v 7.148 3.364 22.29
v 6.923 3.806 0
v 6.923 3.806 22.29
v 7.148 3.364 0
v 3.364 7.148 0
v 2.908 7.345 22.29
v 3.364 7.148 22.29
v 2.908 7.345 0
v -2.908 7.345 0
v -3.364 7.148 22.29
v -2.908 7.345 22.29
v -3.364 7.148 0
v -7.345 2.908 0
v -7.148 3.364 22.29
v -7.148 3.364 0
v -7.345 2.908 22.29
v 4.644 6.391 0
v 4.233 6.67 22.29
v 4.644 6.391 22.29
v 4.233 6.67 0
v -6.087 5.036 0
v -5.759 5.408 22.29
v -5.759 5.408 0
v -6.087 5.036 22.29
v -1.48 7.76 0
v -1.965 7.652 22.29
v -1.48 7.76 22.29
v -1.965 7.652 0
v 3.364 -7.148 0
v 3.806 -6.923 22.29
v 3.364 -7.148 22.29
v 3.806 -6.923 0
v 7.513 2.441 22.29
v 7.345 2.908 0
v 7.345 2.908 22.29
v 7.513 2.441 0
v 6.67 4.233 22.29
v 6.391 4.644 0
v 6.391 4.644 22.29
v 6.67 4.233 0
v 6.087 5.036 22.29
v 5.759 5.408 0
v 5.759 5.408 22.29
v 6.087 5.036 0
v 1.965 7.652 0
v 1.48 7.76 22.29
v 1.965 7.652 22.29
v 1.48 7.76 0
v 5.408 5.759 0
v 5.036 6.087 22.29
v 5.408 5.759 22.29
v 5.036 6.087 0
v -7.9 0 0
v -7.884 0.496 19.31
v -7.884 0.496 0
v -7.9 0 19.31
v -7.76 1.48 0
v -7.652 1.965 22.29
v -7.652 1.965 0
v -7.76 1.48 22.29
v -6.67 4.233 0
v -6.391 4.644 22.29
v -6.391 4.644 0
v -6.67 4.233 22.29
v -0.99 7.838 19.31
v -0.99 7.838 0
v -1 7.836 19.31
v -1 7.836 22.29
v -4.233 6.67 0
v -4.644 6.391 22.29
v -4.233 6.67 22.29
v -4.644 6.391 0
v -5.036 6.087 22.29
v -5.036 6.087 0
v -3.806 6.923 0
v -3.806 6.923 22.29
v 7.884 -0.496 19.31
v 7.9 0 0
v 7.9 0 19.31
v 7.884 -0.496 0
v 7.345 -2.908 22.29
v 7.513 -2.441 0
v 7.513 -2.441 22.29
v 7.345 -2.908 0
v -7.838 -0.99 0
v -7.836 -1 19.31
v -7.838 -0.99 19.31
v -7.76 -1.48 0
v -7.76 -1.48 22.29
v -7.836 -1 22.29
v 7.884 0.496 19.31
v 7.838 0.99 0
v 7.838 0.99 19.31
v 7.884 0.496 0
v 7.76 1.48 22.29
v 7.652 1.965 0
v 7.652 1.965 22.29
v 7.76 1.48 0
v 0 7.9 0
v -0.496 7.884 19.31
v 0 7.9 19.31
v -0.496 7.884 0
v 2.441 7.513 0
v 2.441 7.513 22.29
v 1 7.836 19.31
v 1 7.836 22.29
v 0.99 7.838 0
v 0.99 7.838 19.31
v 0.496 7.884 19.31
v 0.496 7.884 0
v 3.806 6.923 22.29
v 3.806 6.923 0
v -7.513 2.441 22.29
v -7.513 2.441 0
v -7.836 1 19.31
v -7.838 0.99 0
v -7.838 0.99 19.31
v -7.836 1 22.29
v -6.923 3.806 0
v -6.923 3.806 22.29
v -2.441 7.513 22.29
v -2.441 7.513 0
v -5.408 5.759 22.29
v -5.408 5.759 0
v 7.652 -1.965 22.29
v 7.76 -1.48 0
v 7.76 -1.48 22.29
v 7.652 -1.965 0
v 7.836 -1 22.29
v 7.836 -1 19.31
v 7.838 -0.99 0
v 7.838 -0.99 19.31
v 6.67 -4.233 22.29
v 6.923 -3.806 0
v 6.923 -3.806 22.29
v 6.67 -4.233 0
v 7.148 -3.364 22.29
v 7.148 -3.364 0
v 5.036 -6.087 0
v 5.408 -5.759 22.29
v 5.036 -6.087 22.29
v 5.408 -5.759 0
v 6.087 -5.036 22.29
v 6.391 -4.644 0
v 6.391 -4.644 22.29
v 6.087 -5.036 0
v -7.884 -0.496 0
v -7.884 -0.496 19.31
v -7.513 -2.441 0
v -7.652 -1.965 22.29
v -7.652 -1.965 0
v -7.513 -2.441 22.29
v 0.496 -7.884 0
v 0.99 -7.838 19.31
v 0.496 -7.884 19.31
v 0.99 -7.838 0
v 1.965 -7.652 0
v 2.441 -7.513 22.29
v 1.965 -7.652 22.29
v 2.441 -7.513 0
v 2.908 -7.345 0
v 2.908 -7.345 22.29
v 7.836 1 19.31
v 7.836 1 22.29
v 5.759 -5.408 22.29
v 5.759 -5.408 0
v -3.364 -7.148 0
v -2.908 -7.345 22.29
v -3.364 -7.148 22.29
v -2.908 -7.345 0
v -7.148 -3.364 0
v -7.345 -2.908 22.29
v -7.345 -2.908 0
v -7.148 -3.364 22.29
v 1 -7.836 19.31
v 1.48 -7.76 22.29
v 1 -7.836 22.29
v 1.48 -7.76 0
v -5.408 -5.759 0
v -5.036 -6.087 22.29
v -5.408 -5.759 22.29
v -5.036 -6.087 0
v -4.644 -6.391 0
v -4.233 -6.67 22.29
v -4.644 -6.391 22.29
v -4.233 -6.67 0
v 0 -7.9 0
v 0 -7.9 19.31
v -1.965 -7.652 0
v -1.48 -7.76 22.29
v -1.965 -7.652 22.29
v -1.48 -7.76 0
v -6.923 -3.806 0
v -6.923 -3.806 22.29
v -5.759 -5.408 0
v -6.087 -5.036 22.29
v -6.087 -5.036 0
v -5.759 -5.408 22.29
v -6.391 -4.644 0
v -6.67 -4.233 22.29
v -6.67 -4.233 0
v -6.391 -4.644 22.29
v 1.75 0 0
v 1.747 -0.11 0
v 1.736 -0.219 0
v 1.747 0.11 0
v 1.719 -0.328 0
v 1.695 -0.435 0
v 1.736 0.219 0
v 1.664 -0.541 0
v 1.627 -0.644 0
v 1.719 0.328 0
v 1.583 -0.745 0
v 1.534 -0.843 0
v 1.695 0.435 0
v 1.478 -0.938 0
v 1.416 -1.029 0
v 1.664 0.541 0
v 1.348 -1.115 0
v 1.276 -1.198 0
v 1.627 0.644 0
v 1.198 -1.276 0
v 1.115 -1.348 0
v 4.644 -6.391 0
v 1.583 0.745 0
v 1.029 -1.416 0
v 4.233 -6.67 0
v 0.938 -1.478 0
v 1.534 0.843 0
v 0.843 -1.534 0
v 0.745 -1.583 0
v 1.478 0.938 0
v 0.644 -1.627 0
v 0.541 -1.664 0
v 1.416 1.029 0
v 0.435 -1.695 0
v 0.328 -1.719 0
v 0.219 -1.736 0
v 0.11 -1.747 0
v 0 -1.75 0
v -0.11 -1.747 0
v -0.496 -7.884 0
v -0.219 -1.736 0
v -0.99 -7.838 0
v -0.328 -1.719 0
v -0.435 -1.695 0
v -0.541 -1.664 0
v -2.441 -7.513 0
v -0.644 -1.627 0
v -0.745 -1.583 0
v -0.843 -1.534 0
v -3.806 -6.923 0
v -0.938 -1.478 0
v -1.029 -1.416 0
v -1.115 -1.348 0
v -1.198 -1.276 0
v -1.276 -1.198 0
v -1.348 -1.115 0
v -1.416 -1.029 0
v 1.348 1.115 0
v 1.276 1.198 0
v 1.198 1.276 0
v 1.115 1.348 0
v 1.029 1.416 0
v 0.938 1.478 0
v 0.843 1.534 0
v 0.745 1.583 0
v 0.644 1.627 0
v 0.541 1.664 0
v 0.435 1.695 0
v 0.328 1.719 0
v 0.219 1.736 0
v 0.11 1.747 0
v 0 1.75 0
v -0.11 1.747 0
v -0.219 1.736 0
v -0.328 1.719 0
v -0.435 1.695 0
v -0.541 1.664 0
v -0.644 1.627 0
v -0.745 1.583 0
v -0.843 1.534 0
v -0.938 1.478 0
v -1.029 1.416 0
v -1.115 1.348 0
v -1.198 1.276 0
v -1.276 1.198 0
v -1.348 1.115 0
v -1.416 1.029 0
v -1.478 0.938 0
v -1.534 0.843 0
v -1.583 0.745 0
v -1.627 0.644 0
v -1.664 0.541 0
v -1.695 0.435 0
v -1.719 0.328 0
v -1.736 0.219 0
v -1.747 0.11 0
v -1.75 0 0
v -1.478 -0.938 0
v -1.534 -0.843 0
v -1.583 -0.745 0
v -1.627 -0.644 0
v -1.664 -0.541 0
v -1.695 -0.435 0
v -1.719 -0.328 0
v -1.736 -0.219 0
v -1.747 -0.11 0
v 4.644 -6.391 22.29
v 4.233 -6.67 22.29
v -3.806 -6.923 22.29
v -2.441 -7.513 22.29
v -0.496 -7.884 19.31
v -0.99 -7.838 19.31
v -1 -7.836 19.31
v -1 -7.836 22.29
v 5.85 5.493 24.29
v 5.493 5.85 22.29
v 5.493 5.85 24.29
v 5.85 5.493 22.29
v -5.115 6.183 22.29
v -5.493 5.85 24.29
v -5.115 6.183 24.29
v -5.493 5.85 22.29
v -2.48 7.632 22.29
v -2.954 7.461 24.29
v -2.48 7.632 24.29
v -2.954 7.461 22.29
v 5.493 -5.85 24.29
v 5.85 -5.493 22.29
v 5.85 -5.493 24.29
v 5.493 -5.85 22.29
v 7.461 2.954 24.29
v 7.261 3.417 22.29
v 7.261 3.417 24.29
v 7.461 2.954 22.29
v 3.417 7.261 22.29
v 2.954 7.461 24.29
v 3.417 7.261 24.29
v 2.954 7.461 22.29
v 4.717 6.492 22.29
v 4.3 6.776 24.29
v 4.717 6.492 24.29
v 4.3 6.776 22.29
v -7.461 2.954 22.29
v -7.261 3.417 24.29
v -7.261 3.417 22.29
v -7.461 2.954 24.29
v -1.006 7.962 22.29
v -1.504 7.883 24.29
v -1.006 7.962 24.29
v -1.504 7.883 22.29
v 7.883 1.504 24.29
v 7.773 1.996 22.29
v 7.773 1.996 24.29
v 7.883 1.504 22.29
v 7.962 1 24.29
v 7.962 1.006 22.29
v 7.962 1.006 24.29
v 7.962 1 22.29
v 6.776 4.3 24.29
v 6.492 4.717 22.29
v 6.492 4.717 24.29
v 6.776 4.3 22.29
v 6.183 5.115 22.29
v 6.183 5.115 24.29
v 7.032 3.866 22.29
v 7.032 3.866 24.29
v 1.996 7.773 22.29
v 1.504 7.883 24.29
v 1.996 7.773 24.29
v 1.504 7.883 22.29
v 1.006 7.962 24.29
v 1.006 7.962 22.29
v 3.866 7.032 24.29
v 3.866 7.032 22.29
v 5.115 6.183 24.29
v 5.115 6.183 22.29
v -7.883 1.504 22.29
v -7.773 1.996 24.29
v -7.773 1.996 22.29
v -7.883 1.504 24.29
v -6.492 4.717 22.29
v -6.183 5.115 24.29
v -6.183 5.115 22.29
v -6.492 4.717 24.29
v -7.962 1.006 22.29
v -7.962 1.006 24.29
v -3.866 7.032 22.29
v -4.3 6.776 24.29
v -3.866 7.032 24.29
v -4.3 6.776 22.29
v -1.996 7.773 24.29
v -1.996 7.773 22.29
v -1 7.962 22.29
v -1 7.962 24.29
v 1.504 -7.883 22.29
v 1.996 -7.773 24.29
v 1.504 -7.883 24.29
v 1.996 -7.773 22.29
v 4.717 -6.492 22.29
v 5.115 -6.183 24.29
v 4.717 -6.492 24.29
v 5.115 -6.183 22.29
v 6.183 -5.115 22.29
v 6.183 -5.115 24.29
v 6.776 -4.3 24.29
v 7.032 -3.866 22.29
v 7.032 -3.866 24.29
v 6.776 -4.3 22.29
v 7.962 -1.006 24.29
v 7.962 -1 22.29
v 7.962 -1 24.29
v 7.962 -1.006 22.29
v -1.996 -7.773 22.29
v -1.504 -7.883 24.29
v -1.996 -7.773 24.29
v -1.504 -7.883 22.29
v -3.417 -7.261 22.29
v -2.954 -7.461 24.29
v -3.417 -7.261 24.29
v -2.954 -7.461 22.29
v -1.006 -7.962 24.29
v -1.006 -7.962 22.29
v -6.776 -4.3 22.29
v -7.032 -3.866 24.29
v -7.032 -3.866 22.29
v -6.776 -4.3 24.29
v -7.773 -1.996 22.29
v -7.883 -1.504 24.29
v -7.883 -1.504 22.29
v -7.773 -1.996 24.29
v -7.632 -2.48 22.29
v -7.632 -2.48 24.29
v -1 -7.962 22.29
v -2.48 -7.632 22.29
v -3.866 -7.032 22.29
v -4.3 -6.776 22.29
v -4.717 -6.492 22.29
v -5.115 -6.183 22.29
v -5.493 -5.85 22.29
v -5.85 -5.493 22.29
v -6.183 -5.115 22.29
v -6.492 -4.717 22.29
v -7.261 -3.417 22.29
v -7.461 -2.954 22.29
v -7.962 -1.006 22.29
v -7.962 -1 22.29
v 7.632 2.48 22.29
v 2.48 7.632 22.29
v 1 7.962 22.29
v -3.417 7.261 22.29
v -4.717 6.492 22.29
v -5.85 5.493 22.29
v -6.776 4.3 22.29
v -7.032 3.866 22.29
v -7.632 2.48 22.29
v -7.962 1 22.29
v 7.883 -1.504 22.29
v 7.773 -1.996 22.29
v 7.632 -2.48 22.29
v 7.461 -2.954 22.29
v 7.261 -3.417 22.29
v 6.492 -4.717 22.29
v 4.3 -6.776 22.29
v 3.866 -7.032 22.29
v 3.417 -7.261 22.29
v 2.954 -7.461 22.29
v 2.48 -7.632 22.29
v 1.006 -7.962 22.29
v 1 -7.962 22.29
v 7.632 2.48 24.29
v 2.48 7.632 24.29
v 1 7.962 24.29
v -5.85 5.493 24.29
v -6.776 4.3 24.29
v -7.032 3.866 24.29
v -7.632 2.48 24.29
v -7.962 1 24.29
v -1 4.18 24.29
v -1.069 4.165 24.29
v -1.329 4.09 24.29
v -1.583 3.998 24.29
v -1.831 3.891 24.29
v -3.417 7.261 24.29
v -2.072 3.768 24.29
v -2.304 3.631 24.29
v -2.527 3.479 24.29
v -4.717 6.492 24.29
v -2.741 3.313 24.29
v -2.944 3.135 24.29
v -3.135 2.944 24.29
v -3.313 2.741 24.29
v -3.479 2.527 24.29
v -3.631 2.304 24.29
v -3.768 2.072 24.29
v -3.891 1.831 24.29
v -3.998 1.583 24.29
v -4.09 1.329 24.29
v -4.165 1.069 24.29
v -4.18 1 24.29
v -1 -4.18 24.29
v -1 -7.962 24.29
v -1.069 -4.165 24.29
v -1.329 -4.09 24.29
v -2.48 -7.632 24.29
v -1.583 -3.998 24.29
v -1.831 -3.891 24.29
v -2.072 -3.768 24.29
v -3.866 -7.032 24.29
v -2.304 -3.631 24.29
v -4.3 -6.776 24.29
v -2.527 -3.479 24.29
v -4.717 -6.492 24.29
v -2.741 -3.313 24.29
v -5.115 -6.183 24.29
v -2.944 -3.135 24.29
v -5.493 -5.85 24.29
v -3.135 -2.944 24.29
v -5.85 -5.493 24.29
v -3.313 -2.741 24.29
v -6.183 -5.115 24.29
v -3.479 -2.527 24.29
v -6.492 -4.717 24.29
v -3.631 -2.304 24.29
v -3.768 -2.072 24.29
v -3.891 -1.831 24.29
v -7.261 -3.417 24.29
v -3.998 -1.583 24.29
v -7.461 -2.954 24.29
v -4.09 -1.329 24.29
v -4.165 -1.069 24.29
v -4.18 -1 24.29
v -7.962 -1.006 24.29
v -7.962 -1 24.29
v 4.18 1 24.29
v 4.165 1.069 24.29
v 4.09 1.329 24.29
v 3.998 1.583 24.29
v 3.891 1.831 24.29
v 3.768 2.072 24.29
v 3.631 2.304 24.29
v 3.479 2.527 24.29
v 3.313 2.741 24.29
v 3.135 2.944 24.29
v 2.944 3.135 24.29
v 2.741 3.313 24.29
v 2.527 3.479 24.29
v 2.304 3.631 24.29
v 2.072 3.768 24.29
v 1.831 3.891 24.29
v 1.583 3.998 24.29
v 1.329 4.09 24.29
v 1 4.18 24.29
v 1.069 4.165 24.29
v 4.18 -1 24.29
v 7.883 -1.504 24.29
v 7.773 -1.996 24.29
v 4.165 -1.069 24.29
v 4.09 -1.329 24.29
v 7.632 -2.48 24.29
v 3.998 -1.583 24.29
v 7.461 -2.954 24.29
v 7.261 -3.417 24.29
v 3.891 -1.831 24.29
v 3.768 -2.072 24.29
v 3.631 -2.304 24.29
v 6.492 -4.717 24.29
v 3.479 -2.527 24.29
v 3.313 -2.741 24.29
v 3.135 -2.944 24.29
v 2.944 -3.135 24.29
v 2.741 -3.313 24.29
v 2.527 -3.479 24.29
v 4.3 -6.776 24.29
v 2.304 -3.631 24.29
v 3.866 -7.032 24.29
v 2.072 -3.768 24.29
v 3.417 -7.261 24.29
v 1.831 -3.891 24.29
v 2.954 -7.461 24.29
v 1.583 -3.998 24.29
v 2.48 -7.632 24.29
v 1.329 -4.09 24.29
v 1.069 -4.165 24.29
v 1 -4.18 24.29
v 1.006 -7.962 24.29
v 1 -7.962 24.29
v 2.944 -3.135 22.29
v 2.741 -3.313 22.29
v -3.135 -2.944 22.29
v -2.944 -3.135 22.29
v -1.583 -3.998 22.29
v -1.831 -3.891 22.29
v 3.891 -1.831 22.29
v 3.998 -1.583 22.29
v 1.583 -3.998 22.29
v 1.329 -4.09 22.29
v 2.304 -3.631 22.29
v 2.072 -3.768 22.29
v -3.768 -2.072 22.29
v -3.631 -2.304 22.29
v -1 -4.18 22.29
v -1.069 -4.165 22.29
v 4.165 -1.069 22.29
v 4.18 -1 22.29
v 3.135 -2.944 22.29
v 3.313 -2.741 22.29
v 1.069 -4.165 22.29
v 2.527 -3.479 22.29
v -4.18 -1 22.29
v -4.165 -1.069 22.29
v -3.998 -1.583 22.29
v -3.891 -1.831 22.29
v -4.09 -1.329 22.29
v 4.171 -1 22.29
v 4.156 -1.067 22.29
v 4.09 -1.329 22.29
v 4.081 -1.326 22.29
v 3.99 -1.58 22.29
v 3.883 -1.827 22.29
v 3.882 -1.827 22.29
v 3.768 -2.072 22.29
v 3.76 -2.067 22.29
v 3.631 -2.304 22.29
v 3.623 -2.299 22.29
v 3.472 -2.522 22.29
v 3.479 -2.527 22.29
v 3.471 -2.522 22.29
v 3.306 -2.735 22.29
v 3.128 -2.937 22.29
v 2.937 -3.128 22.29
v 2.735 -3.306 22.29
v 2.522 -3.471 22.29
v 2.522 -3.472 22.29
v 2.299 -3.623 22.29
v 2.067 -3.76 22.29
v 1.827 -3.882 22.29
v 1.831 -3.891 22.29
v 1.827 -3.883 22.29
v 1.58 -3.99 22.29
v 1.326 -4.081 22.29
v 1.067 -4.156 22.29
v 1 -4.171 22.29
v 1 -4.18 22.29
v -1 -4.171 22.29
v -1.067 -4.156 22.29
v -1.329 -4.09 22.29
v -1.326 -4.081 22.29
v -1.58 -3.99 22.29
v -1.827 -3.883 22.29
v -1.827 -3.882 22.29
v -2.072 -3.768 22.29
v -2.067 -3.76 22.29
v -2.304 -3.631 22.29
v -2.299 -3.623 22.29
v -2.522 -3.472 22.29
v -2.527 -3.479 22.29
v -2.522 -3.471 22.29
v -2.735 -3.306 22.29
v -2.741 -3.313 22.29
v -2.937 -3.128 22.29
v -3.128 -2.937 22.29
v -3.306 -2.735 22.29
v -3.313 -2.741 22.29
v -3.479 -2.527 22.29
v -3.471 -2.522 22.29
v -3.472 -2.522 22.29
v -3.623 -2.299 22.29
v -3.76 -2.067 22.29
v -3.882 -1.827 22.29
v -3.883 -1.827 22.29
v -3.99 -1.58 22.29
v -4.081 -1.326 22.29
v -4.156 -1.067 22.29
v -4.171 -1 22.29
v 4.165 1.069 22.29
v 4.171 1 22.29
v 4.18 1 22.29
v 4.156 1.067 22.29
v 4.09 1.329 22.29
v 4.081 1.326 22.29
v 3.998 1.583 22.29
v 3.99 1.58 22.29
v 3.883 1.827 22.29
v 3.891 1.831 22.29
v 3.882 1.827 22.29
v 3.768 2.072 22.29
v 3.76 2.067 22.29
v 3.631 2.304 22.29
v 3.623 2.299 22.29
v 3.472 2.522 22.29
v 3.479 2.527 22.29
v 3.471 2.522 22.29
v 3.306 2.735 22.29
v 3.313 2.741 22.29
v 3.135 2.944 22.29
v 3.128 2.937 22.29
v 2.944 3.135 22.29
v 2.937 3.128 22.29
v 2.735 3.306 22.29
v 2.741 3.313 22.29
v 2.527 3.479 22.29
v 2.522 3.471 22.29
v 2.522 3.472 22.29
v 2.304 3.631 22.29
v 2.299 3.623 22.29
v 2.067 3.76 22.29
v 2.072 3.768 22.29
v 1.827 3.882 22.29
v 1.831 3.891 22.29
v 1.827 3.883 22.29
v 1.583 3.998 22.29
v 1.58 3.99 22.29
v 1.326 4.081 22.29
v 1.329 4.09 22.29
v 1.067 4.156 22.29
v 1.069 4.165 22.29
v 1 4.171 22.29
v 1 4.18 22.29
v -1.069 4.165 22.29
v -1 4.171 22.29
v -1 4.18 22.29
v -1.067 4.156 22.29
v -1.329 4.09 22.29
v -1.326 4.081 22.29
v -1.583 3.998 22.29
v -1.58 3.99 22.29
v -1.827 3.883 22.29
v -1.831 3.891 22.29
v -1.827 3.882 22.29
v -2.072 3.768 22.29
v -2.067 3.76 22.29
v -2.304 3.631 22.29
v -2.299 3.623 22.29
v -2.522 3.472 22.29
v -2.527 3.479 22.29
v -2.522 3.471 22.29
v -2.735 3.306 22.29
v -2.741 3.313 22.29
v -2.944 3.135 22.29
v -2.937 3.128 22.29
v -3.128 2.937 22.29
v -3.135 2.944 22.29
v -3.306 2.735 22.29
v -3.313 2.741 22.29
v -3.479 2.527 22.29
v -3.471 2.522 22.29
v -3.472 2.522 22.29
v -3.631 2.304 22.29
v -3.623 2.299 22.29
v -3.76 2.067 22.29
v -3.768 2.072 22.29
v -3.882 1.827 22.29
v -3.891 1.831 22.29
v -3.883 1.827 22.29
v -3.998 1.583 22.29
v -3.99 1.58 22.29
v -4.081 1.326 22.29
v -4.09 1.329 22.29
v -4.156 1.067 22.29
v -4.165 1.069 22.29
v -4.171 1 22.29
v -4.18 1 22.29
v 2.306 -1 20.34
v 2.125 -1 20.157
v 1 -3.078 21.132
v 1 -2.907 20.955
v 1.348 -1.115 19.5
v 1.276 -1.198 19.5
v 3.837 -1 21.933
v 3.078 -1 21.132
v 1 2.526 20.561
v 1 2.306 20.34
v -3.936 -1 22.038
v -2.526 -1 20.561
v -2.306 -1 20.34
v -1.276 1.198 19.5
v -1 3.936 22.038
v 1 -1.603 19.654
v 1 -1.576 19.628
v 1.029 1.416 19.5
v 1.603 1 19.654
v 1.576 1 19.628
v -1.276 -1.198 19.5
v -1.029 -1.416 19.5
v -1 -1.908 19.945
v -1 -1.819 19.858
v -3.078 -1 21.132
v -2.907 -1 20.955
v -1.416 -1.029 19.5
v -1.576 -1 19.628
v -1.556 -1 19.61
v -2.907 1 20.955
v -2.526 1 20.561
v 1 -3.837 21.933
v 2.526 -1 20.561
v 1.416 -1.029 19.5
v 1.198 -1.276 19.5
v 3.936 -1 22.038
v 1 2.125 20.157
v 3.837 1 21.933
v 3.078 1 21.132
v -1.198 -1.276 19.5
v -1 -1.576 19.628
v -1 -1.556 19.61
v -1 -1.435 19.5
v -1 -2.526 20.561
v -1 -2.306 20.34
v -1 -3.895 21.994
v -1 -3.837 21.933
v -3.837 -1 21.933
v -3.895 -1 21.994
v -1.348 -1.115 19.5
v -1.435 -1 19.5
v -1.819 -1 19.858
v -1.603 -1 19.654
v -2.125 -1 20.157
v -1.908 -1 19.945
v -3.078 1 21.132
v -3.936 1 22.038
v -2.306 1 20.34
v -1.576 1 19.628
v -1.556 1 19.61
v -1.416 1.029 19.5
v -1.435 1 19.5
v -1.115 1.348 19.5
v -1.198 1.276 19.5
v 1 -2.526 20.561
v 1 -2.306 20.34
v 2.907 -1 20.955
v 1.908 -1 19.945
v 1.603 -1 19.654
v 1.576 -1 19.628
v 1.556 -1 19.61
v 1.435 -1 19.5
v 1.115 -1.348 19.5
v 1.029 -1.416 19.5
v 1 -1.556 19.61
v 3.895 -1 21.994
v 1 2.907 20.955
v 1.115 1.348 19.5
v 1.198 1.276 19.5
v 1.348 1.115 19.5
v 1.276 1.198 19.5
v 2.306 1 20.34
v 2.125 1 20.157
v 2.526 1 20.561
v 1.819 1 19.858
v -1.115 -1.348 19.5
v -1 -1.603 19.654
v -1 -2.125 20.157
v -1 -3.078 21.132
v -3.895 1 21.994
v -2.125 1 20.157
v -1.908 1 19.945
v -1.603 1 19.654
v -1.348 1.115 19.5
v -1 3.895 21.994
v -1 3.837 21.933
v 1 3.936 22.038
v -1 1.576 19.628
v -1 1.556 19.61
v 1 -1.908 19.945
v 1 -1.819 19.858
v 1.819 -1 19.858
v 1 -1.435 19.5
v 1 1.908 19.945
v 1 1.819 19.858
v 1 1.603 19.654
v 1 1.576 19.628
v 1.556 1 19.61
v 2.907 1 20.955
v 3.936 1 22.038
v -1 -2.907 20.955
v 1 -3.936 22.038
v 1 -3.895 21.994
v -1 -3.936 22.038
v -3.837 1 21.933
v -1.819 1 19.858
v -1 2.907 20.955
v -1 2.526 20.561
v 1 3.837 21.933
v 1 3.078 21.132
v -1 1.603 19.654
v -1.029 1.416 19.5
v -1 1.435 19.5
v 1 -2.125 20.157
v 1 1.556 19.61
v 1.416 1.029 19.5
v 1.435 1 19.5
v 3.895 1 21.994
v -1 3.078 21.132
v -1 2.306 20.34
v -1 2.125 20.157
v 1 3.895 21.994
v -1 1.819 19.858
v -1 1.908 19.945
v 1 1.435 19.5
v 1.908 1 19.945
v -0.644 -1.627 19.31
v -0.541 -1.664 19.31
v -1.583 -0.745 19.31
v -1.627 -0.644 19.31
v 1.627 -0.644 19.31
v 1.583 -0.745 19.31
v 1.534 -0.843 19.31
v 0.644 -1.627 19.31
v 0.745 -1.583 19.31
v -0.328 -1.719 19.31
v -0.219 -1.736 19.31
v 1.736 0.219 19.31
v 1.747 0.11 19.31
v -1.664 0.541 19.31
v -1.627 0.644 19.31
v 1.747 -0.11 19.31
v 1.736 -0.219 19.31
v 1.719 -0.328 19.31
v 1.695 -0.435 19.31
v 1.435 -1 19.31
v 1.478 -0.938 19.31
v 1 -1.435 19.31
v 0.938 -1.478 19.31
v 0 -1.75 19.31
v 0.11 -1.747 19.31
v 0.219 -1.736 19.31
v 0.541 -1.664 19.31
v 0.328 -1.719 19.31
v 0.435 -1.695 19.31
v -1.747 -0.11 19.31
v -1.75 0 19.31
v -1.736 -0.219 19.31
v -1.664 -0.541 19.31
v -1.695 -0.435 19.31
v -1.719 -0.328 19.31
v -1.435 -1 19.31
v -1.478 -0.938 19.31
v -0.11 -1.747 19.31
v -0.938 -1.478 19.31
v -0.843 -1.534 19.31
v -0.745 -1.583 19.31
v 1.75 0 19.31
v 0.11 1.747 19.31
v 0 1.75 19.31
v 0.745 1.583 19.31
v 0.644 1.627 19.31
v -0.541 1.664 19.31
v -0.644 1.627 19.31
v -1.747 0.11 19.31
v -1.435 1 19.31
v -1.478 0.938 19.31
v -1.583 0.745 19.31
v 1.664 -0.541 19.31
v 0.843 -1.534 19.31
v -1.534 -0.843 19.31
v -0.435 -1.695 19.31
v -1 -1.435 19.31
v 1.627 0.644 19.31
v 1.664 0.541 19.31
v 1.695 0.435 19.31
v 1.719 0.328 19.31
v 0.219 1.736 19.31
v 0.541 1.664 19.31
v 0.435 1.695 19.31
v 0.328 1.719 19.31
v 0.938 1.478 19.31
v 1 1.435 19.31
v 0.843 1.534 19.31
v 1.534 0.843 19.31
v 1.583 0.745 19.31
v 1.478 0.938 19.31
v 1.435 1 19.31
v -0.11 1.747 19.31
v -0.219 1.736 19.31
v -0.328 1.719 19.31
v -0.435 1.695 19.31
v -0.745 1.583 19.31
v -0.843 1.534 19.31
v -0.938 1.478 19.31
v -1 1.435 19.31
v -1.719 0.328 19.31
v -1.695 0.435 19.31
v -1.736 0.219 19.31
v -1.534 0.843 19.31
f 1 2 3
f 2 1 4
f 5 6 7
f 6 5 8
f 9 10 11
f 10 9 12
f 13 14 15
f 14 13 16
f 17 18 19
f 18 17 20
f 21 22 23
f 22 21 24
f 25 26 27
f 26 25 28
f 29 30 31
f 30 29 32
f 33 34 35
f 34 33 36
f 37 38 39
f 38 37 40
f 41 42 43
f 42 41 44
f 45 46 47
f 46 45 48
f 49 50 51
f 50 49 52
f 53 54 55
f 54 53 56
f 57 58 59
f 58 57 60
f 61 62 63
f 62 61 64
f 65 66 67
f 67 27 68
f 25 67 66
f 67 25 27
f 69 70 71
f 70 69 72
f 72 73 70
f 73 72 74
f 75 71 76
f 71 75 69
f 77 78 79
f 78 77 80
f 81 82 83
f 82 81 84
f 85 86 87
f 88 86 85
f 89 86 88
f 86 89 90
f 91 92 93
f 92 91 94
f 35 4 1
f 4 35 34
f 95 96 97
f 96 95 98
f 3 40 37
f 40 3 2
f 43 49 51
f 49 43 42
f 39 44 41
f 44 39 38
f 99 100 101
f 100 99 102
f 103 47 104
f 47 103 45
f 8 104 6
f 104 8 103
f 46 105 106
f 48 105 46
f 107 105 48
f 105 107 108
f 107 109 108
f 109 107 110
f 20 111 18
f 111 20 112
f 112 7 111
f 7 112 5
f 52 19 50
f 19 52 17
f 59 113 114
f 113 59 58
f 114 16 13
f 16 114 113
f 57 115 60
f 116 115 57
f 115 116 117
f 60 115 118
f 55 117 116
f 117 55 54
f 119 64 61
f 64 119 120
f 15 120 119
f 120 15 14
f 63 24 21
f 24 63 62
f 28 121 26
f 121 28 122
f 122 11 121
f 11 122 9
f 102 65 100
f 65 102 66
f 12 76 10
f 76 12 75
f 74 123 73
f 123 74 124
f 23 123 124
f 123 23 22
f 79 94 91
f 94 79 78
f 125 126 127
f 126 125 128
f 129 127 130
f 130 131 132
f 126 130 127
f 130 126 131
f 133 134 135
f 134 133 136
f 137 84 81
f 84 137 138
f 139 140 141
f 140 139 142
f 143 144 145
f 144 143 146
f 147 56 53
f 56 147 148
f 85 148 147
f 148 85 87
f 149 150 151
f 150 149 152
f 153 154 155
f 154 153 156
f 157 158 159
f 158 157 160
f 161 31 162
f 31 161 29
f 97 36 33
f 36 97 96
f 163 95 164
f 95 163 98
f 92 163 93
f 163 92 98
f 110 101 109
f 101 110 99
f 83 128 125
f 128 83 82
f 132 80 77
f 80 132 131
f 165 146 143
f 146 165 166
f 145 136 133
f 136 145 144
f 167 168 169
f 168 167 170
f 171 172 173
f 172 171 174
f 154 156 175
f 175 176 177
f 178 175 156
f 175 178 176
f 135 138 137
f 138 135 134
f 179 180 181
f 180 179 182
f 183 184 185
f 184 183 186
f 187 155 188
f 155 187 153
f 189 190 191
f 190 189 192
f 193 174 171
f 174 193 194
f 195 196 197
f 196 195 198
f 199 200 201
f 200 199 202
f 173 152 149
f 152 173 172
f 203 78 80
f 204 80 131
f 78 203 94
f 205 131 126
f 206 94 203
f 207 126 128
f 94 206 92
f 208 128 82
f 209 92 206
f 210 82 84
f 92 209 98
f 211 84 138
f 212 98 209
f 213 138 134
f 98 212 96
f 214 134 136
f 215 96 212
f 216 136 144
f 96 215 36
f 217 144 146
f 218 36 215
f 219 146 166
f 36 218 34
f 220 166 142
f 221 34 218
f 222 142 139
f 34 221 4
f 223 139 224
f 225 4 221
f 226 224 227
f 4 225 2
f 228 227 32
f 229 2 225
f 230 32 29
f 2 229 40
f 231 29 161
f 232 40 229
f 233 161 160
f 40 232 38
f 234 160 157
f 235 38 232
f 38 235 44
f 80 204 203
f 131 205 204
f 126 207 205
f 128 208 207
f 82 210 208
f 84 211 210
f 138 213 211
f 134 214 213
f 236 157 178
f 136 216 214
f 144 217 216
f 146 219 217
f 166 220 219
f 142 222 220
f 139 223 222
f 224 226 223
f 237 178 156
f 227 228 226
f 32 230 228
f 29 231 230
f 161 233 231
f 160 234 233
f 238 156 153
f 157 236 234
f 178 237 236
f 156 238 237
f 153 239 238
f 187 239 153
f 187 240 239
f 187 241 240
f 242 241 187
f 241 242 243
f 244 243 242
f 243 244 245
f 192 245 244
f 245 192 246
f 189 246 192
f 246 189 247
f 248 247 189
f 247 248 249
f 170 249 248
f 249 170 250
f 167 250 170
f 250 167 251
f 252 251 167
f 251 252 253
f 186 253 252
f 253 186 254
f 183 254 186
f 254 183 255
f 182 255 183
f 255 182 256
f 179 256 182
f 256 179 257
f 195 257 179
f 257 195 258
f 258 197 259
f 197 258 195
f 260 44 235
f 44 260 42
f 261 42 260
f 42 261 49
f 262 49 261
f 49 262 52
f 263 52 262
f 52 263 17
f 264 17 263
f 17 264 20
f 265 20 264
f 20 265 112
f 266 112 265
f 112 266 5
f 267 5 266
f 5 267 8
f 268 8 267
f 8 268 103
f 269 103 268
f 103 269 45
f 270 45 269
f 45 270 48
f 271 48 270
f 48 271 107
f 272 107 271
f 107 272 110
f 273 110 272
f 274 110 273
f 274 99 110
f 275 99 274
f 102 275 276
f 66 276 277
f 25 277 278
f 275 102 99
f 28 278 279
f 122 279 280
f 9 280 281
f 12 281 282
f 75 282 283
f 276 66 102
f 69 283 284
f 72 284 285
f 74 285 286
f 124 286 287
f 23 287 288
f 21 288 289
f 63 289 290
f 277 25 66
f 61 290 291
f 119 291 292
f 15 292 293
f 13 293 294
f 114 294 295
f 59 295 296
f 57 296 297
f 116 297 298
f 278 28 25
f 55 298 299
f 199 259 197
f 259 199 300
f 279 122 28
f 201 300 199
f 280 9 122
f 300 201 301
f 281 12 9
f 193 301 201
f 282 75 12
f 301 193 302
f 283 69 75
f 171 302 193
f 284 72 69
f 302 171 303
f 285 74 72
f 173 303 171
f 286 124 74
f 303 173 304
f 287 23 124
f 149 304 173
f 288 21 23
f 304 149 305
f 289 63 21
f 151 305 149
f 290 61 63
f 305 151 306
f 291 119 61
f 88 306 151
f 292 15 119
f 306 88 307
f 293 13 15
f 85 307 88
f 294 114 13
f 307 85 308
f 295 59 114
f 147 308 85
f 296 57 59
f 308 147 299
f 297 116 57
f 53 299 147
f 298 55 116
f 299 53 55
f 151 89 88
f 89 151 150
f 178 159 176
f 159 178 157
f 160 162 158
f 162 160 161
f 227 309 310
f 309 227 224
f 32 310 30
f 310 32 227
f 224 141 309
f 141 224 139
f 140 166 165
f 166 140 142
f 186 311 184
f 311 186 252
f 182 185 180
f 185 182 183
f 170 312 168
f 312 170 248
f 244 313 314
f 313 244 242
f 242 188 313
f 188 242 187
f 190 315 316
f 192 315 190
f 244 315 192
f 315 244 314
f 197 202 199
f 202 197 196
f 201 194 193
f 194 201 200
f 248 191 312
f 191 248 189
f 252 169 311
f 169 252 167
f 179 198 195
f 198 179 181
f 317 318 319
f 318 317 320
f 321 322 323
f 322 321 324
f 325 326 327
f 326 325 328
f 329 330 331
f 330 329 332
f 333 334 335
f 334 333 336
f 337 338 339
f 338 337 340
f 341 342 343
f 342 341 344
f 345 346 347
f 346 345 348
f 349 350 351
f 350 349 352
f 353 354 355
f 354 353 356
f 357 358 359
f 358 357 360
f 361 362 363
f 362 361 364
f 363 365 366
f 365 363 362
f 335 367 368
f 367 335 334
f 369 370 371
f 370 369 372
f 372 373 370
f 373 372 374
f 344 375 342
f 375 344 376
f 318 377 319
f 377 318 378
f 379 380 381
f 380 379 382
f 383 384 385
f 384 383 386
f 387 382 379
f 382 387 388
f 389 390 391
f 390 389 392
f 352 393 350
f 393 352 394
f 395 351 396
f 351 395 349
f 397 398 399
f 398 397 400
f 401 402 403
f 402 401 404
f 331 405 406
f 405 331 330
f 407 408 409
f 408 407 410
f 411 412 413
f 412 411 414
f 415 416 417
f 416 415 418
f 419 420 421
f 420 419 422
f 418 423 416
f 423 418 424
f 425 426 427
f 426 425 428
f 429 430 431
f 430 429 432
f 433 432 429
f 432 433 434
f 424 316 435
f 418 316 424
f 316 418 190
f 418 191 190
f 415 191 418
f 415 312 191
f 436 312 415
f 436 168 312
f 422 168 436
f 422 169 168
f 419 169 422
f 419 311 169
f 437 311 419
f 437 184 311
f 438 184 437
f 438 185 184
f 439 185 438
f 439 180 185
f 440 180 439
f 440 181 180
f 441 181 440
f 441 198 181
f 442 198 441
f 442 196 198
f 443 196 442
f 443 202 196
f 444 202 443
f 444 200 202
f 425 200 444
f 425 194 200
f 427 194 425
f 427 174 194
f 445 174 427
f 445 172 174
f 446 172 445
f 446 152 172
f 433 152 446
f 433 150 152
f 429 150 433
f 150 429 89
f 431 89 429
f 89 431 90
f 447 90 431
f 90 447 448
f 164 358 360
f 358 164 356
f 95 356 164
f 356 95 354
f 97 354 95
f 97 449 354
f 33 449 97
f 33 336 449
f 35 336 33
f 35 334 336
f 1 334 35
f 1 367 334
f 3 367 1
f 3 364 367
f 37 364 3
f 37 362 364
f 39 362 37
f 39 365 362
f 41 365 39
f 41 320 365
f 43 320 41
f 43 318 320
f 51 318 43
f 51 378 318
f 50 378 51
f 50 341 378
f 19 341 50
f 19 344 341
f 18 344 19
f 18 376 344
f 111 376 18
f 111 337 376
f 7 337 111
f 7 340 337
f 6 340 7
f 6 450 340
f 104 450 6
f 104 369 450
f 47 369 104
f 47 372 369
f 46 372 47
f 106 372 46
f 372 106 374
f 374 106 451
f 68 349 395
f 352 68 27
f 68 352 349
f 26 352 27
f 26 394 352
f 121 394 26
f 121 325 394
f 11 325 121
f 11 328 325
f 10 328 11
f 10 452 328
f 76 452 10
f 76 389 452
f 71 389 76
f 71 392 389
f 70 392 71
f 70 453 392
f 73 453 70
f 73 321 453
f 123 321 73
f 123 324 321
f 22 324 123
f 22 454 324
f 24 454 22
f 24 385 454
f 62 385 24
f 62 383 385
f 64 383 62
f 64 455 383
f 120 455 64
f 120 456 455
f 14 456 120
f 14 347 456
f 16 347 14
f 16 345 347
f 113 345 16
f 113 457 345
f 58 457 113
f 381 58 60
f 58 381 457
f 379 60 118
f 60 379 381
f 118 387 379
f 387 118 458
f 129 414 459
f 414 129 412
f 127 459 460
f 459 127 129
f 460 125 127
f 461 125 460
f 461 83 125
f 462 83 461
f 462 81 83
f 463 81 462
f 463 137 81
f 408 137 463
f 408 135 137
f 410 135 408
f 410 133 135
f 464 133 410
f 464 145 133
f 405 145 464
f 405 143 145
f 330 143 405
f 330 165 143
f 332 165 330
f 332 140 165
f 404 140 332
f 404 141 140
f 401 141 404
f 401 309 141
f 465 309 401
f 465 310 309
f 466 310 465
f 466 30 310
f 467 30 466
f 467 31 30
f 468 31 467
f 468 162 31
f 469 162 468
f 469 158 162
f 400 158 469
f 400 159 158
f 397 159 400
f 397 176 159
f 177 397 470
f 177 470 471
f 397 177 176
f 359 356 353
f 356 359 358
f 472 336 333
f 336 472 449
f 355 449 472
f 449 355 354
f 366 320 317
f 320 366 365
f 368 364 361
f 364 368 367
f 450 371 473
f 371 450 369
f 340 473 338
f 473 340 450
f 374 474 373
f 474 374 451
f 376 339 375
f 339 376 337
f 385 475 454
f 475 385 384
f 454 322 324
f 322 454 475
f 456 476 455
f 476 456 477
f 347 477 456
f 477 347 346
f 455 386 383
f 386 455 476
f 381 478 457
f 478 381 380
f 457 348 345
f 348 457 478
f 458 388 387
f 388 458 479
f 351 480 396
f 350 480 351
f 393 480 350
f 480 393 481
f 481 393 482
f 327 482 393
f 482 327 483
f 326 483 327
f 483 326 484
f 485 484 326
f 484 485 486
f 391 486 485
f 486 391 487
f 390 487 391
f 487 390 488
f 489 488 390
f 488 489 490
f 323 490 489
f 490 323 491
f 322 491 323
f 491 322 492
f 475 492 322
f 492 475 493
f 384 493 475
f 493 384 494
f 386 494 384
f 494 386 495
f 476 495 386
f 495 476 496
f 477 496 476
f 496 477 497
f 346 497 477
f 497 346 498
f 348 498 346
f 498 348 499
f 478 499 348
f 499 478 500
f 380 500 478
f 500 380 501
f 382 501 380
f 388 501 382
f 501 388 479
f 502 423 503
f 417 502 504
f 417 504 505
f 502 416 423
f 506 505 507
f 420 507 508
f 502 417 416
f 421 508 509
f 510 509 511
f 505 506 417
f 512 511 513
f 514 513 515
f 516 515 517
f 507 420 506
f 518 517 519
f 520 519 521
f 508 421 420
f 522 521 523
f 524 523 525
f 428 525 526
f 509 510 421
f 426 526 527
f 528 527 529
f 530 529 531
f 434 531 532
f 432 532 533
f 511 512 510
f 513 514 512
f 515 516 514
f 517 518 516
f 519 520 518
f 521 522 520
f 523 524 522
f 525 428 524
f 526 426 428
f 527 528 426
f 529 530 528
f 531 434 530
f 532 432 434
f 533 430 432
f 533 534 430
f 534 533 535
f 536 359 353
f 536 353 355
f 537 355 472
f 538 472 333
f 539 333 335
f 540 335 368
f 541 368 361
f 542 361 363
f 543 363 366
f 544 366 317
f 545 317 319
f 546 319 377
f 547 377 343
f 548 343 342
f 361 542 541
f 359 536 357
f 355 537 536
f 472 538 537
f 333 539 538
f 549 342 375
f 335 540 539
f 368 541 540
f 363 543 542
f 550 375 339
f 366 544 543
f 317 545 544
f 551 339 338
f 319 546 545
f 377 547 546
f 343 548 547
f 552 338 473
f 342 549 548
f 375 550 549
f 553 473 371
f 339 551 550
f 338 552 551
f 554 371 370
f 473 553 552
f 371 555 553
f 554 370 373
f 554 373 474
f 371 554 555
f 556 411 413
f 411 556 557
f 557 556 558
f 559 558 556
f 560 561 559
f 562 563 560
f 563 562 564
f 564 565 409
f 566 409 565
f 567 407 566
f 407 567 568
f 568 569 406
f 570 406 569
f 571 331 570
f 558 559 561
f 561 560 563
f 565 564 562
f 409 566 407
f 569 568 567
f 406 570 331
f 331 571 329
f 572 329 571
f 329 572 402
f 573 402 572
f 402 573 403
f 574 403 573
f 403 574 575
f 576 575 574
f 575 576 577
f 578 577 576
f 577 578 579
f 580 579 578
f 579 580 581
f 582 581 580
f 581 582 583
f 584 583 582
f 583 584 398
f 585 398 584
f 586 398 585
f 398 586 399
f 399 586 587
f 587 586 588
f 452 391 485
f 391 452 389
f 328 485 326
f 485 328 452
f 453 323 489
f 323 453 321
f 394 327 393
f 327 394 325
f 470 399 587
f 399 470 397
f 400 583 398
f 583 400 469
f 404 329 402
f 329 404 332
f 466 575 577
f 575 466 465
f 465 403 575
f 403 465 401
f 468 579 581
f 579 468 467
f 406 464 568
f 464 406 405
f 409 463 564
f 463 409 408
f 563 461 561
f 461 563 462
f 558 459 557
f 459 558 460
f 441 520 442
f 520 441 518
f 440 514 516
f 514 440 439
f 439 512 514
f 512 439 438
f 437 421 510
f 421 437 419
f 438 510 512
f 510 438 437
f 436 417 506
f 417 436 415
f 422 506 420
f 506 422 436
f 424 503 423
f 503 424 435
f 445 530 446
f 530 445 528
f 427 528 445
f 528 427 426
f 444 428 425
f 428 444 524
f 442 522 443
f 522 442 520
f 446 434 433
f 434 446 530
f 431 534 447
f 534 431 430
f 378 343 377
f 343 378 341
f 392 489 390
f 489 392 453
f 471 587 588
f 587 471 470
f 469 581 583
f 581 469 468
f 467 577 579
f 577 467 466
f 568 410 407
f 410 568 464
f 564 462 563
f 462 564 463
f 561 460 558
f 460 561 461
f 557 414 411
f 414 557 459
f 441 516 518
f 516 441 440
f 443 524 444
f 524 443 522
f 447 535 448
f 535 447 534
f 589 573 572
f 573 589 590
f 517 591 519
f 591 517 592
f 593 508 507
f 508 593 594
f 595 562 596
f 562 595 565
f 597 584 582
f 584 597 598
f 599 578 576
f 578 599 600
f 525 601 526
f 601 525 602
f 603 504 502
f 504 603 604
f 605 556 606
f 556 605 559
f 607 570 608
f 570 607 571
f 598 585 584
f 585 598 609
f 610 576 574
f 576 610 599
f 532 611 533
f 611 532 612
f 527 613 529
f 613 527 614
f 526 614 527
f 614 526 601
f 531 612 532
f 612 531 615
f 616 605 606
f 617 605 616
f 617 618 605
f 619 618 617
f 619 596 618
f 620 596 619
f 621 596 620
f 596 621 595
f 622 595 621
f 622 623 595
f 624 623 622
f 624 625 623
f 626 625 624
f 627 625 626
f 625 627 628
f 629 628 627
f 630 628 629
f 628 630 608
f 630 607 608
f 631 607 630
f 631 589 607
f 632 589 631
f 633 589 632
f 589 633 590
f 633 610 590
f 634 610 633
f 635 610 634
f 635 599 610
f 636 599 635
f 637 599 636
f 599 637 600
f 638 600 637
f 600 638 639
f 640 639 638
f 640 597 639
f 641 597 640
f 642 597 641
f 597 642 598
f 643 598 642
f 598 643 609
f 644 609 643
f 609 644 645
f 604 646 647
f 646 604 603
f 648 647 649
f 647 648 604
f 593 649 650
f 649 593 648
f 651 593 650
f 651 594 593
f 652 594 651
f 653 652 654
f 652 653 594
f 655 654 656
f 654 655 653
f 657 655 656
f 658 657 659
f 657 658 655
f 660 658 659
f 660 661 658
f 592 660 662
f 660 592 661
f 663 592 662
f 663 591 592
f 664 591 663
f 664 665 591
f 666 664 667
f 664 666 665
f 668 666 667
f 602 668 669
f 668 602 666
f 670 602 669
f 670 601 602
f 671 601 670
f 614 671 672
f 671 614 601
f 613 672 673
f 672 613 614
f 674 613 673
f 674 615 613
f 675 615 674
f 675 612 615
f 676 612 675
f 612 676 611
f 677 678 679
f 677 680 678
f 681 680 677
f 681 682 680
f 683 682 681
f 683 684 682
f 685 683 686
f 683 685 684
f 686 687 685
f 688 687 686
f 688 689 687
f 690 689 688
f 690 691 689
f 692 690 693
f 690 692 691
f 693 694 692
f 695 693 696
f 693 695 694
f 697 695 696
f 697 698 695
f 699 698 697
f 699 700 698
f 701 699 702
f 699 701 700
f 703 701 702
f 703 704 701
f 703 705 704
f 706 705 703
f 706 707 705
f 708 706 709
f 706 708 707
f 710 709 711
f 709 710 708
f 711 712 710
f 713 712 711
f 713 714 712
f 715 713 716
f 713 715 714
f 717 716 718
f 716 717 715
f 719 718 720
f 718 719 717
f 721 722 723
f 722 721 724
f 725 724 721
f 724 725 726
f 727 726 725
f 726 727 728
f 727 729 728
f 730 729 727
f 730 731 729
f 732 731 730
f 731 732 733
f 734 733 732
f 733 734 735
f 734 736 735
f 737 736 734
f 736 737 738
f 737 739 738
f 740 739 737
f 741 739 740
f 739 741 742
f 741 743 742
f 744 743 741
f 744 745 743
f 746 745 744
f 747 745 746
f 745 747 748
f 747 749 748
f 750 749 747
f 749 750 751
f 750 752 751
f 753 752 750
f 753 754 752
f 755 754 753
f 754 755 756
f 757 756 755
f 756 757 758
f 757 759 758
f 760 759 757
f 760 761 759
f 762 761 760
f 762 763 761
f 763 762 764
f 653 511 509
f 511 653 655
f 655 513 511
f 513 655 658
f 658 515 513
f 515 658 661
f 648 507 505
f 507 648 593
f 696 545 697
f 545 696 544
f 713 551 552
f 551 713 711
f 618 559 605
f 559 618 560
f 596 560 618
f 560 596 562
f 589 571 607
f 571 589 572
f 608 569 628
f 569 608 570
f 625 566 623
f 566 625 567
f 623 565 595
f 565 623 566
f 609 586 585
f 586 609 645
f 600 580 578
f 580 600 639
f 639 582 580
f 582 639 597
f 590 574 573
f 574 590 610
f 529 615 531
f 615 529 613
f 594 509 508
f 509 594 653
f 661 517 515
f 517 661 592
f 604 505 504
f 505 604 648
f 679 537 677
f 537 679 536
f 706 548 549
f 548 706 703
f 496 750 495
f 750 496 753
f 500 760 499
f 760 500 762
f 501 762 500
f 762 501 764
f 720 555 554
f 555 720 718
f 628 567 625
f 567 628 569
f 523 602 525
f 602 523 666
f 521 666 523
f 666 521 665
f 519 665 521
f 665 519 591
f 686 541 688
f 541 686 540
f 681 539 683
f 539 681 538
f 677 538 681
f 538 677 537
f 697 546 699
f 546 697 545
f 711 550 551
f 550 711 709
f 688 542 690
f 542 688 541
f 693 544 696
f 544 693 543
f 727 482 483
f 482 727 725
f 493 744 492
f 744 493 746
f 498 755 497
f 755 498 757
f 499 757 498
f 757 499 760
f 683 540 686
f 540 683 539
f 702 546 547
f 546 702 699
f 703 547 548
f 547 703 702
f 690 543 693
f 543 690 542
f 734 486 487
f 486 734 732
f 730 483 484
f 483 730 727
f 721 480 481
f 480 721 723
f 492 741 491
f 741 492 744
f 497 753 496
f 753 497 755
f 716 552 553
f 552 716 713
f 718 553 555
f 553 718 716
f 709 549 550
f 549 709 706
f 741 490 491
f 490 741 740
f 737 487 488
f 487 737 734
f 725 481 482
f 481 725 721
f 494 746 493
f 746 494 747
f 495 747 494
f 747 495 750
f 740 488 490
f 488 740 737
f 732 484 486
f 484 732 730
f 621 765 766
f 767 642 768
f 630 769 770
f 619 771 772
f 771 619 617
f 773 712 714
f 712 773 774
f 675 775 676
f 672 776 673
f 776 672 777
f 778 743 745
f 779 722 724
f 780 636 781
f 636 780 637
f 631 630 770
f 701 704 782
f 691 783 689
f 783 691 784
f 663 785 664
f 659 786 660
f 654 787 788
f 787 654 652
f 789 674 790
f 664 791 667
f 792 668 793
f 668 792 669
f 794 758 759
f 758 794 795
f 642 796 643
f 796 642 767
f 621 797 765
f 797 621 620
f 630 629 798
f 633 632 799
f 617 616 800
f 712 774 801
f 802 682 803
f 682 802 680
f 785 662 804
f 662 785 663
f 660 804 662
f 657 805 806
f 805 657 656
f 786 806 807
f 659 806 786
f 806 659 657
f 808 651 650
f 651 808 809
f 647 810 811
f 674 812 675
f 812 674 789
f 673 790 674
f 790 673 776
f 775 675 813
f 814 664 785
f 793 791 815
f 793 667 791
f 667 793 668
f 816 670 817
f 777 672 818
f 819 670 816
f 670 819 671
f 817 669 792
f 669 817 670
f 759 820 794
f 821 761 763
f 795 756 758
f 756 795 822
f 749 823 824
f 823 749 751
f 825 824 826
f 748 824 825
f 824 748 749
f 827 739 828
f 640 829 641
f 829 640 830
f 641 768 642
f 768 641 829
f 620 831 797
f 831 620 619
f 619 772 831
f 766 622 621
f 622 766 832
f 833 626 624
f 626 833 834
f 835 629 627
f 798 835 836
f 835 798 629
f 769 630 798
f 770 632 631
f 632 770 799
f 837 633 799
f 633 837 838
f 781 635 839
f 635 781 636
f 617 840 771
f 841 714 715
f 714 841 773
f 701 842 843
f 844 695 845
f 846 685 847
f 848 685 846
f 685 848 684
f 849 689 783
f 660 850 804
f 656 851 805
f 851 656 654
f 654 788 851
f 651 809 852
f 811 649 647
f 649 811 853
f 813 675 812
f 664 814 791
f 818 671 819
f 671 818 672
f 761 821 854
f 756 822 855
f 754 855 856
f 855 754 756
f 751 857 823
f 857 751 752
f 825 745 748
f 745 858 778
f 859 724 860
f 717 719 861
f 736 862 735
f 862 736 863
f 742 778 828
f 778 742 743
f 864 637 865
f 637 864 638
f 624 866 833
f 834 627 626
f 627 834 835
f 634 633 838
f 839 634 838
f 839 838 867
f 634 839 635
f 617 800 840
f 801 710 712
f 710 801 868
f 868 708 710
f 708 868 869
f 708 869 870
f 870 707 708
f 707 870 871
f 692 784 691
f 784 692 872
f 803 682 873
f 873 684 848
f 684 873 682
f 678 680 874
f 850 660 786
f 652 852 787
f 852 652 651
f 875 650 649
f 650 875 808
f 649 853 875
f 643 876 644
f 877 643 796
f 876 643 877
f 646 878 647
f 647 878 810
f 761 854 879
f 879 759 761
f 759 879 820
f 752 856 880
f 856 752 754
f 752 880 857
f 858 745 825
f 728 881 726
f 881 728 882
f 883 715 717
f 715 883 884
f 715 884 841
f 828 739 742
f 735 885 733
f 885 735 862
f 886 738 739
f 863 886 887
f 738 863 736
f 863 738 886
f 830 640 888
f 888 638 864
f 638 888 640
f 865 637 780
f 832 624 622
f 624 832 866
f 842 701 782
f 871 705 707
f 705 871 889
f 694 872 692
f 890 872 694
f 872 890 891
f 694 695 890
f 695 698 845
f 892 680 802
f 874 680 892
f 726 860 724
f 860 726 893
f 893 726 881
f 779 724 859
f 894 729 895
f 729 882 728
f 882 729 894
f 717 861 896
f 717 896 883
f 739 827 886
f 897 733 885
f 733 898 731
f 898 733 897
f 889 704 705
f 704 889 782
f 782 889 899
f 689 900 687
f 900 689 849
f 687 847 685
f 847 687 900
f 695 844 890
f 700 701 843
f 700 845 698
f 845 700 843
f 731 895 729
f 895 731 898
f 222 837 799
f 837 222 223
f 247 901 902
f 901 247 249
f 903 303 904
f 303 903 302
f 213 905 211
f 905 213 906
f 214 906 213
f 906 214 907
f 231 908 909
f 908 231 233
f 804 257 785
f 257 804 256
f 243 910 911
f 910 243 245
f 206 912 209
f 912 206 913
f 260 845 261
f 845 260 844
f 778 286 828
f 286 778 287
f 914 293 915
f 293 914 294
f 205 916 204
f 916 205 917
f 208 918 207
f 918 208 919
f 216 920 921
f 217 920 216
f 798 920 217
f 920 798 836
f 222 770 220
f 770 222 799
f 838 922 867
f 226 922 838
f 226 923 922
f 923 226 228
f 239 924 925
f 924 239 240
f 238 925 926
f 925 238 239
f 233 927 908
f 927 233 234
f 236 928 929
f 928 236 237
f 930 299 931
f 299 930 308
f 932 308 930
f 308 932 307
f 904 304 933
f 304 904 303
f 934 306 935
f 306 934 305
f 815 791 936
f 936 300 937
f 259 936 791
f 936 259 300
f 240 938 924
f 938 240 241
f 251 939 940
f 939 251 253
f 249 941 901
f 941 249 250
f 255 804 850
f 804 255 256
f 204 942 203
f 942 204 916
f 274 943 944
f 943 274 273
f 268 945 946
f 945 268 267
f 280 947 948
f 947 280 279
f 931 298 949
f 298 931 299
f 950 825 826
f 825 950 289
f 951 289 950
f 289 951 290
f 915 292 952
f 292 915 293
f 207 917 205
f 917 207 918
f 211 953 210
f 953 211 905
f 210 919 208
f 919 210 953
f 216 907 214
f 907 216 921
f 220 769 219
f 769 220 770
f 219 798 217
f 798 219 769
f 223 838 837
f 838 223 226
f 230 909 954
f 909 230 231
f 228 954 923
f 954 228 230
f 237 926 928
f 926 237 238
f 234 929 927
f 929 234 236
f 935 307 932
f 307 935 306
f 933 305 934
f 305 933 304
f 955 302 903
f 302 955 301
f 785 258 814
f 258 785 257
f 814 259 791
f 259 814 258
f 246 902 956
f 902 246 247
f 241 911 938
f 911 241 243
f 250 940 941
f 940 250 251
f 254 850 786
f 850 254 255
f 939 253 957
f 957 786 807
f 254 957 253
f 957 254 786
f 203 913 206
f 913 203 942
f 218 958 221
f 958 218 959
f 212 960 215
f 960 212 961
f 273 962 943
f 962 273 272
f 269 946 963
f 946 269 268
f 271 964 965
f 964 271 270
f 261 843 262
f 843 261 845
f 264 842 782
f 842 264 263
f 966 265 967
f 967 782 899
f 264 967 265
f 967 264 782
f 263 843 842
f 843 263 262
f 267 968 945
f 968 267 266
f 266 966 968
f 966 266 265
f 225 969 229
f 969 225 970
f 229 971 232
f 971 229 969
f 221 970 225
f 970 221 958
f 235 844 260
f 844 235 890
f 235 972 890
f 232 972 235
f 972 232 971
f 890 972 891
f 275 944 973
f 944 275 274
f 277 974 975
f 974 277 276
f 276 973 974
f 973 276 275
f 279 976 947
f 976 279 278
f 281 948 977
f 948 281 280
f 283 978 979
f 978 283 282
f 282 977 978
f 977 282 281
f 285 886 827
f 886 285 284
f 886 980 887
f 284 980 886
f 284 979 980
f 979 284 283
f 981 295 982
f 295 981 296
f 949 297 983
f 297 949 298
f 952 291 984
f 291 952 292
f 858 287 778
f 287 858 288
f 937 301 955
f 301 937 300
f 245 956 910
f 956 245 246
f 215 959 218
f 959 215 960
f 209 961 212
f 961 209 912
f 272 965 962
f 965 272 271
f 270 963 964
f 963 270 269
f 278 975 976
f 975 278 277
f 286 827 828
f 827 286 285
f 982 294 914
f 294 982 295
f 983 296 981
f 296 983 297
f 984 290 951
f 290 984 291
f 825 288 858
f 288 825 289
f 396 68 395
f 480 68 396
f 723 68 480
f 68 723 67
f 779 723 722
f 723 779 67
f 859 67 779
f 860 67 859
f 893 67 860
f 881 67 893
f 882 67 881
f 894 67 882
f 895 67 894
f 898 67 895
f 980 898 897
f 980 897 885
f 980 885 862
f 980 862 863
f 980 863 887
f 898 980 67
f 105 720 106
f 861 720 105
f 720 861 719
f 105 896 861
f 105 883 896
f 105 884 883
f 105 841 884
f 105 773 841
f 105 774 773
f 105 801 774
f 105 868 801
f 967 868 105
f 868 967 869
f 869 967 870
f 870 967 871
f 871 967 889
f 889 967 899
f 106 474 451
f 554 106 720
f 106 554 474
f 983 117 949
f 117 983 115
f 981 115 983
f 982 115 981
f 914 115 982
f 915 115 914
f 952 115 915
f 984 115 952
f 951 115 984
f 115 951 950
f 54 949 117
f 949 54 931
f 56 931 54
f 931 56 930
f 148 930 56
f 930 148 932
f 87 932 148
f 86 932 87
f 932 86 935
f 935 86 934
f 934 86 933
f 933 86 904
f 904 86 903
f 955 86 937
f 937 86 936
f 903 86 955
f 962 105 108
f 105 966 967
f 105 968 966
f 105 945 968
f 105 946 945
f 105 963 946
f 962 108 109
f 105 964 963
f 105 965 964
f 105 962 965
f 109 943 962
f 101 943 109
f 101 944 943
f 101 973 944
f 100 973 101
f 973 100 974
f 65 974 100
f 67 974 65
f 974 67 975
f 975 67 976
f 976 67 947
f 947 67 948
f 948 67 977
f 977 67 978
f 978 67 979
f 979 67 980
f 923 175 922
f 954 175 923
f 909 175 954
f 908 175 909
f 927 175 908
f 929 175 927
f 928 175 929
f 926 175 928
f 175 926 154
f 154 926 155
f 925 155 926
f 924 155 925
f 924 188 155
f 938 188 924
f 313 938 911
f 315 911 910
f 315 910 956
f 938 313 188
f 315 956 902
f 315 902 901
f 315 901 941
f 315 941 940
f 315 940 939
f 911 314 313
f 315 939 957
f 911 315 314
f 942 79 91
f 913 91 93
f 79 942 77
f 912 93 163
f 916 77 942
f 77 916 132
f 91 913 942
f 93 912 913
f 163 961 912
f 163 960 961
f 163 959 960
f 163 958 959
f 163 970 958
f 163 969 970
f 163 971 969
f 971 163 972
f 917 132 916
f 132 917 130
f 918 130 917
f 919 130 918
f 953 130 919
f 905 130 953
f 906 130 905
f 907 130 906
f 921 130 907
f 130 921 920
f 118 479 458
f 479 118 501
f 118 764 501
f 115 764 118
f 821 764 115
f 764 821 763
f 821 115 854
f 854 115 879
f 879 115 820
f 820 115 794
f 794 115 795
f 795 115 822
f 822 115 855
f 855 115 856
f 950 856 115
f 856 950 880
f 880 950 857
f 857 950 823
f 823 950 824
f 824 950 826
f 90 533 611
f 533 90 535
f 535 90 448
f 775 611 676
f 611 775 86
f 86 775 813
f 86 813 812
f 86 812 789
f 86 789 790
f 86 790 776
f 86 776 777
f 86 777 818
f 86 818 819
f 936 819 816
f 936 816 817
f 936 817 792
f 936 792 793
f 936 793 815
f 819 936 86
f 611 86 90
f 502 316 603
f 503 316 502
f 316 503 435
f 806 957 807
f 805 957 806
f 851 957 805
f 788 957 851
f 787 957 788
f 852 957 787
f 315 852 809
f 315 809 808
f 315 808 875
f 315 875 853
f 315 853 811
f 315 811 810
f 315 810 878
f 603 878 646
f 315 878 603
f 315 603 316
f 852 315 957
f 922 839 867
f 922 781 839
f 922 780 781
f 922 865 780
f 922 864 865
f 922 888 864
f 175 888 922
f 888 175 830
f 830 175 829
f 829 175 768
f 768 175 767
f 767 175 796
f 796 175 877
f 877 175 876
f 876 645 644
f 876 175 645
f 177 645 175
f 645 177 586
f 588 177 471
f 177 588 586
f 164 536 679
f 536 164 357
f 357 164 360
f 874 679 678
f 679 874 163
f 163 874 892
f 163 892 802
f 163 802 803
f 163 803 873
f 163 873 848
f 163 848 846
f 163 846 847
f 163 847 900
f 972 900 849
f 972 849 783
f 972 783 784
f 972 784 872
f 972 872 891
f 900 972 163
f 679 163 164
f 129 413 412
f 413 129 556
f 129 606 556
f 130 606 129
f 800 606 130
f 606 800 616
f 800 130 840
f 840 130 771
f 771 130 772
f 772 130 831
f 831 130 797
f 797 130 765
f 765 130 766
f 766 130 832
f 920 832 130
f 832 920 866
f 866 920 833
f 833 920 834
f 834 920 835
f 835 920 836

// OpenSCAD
// file: DryWallScrews.scad
e=.01;
$fn=100;

function s1_25() = // 1 1/4" screw
    let(total_len = 32.3)
    let(thread = 21.5)
    let(shank = 8)
    let(d_shank = 3.5)
    let(d_hat = 8.6)
    [total_len, thread, shank, total_len-thread-shank, d_shank-.5, d_shank, d_hat];

function s2() = // 2" screw
    let(total_len = 51.4)
    let(thread = 33.5)
    let(shank = 13.3)
    let(d_shank = 3.5)
    let(d_hat = 8.6)
    [total_len, thread, shank, total_len-thread-shank, d_shank-.5, d_shank, d_hat];  

module screw(a, p=0.){
    total_len=a[0]; thread=a[1]; shank=a[2]; hat=a[3]; d_thread=a[4]; d_shank=a[5]; d_hat=a[6];
    union(){
        if( p > 0.) {
            translate([0,0,-p+e])
            cylinder(p,d1=d_hat,d2=d_hat);
        }
        cylinder(hat,d1=d_hat,d2=d_shank);
        translate([0,0,hat-e])
        if( p > 0.) {
            cylinder(shank+thread+p, d1=d_shank, d2=d_shank);
        }else{
            union(){
                cylinder(shank, d1=d_shank, d2=d_shank);
                translate([0,0,shank-e])
                cylinder(thread, d1=d_thread, d2=d_thread);
            }
        }
    }
}

//screw(s1_25());
//translate([10,0,0]) screw(s1_25(),5);
//translate([20,0,0]) screw(s2());
//translate([30,0,0]) screw(s2(),5);
// main file
h = 22.3;
d = 15.8;
$fn=100;
w_lip = .25;
h_lip = 2;
h_cut = 5;
e=.01;

use <DryWallScrews.scad>


difference(){

    union(){
        cylinder(h,d1=d,d2=d);
        translate([0,0,h-e])
            cylinder(h_lip,d1=d+w_lip,d2=d+w_lip);
    }
    
    translate([0,0,h]) rotate([180,0,0]) screw(s1_25(),5);
    
    translate([0,0,h+h_lip-h_cut+e])
    union(){
        for (i = [0:3]){
            rotate([0,0,i*90]) translate([-1,0,0]) cube([2,d,h_cut]);
        }
    }

}
